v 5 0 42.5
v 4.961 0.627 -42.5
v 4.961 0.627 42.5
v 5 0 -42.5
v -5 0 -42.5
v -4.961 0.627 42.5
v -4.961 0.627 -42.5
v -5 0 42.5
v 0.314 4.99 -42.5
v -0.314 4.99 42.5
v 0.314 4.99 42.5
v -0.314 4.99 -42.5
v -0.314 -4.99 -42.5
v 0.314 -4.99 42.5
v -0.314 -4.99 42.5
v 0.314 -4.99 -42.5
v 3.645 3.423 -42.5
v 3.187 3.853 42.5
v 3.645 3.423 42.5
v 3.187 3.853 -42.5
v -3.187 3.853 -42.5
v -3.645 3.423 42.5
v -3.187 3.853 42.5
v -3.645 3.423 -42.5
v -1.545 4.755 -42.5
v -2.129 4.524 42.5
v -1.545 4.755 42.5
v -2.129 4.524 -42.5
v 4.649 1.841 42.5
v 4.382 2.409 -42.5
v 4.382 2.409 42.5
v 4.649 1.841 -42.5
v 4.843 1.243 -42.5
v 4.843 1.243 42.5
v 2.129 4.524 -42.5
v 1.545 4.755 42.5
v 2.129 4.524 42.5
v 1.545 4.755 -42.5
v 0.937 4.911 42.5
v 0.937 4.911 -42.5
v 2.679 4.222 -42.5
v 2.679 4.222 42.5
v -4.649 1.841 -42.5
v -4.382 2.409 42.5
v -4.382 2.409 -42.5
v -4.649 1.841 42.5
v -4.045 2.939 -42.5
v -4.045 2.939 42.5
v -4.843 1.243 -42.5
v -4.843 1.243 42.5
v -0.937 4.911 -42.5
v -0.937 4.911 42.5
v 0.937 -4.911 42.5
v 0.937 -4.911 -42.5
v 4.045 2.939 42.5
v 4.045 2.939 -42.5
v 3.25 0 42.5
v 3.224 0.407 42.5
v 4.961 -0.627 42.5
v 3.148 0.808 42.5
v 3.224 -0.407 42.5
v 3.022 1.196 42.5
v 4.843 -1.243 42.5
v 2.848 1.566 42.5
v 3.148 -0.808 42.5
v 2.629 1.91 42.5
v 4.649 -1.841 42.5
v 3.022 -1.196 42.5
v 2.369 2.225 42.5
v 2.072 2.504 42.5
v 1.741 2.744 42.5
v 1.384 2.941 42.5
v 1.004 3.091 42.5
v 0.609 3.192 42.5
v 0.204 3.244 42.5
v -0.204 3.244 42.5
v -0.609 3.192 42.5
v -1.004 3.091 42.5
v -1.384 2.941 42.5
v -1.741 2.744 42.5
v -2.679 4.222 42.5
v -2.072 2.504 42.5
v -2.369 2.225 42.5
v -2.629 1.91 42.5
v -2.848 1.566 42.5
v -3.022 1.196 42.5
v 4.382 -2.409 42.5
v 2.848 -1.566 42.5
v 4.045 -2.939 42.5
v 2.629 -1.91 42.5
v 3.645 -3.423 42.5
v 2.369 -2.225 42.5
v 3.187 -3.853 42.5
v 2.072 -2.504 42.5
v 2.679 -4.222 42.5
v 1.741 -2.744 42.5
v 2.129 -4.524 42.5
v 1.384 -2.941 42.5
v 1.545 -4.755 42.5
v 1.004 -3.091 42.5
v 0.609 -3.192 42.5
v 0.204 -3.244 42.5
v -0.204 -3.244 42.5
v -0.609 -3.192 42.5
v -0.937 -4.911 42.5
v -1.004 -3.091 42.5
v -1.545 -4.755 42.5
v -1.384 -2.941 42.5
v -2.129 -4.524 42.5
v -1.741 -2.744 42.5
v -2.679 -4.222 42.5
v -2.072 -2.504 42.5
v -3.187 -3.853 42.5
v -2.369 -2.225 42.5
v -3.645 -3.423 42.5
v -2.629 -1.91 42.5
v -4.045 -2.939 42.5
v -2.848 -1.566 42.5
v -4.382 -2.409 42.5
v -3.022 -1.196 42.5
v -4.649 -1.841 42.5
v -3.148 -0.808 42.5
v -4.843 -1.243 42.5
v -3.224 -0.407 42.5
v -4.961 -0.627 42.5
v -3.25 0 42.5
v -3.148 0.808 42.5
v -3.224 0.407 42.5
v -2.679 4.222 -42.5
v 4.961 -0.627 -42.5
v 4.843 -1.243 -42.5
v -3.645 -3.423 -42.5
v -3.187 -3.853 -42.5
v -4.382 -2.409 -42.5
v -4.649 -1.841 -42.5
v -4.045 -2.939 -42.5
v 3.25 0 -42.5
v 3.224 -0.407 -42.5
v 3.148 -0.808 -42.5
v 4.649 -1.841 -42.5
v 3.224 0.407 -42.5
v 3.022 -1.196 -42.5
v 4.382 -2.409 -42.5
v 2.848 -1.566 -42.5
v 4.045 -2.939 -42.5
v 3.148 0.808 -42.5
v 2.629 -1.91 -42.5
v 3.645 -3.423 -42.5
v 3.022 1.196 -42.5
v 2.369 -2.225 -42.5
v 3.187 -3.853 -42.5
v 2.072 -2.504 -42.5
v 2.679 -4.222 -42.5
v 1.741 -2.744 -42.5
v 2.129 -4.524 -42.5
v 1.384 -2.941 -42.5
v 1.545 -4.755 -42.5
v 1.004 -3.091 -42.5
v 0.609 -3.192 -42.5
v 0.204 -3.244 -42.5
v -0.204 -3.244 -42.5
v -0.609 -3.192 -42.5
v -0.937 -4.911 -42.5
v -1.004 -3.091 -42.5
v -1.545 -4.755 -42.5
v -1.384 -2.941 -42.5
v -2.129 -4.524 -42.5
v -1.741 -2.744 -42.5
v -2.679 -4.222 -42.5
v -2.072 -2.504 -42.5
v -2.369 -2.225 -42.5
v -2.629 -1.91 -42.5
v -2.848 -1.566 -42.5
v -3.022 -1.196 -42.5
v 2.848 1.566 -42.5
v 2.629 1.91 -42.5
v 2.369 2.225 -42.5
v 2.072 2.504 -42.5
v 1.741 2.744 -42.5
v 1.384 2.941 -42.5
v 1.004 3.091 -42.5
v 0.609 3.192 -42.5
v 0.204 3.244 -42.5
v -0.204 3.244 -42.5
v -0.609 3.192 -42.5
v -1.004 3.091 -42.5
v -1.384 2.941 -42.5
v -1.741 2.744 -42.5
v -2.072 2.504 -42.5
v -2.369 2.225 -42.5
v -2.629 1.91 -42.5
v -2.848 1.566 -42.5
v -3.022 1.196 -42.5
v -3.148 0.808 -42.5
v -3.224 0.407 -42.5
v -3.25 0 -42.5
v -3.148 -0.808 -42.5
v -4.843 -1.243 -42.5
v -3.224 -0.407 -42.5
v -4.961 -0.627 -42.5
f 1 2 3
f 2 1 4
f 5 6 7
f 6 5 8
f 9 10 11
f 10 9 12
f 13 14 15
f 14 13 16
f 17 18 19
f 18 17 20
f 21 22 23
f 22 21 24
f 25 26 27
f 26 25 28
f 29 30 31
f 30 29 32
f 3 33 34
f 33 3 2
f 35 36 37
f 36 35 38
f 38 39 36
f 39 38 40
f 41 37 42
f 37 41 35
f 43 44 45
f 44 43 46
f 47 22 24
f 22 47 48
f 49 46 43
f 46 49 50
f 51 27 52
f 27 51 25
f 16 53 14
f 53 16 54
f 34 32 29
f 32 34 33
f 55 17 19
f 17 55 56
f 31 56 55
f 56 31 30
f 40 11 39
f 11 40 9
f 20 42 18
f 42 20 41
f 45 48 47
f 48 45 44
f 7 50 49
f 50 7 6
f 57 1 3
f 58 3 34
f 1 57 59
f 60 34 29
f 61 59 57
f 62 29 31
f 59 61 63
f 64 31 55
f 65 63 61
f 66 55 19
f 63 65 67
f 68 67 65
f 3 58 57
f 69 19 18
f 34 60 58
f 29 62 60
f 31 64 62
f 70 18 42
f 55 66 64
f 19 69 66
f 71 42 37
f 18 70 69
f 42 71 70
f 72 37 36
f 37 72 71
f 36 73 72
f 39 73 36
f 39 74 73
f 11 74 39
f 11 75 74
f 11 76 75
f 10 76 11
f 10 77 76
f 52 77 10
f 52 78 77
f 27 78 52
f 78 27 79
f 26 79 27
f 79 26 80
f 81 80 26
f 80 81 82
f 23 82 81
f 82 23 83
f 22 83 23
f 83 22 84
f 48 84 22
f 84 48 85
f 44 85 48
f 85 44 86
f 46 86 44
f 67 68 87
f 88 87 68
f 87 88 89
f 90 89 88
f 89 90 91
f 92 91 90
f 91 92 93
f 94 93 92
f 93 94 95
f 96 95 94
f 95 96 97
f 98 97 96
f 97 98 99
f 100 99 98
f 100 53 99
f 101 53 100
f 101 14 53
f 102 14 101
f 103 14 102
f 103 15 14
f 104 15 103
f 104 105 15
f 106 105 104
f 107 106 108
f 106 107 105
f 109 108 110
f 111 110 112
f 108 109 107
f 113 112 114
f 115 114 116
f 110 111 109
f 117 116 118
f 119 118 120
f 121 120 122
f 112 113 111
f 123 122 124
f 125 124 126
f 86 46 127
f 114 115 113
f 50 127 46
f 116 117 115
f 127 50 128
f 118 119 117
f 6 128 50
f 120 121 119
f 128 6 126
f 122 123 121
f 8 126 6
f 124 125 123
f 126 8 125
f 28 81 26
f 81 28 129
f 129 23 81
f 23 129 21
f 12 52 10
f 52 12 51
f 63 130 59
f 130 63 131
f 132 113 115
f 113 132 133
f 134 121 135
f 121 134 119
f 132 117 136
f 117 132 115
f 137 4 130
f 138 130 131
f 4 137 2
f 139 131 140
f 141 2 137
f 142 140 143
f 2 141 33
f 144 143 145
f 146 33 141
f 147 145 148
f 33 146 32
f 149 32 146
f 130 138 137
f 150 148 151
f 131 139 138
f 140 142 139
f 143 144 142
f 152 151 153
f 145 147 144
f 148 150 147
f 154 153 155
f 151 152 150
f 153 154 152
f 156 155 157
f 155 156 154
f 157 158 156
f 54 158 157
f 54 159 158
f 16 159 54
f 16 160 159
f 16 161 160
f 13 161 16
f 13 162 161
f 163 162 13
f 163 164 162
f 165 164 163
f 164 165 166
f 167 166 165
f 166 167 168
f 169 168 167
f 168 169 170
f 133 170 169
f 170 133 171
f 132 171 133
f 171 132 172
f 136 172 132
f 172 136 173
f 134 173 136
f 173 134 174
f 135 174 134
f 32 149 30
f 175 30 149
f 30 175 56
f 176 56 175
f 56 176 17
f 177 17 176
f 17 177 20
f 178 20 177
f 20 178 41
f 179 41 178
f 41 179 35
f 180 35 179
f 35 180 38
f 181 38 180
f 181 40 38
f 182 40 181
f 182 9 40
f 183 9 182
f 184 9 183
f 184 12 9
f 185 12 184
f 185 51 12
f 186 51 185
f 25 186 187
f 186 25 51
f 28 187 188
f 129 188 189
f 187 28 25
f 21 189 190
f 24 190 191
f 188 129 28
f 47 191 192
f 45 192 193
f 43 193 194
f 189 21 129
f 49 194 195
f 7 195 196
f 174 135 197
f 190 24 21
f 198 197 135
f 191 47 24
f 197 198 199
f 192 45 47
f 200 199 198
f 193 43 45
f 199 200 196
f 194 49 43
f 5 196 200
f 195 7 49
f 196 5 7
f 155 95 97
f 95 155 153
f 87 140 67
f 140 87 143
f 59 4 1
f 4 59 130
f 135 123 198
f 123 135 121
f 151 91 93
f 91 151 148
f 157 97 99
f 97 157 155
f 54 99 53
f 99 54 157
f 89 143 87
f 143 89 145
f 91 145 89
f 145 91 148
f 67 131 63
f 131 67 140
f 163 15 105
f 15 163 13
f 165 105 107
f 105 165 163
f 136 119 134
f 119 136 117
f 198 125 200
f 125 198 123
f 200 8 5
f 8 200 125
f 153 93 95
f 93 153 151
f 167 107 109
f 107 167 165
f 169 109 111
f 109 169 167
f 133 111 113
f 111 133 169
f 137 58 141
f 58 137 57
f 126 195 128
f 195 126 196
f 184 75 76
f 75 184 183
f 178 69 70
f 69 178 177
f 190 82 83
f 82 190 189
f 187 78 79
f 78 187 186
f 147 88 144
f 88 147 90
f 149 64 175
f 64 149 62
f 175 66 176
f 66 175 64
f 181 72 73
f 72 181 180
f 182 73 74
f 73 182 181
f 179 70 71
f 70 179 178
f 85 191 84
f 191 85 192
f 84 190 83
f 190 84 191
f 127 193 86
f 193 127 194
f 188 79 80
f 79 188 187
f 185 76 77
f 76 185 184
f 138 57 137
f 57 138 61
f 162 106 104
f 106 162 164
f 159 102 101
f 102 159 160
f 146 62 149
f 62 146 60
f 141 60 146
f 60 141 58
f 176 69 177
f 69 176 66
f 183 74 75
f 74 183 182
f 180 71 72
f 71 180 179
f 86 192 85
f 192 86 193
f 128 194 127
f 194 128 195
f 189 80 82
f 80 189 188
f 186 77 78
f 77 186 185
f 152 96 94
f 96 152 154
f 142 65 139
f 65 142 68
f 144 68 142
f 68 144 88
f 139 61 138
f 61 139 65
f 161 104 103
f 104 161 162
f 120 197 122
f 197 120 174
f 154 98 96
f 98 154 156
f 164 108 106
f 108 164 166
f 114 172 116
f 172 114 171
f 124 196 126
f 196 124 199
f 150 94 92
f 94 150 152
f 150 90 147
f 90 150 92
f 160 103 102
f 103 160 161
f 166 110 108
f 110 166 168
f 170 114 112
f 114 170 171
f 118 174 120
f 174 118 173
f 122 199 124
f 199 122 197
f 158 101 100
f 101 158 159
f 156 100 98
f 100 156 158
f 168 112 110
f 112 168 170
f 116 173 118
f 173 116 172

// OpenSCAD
$fn = 50;


difference() {
	union() {
		translate(v = [0, 0, -42.5000000000]) {
			cylinder(h = 85, r = 5.0000000000);
		}
	}
	union() {
		translate(v = [0, 0, -100.0000000000]) {
			cylinder(h = 200, r = 3.2500000000);
		}
	}
}
